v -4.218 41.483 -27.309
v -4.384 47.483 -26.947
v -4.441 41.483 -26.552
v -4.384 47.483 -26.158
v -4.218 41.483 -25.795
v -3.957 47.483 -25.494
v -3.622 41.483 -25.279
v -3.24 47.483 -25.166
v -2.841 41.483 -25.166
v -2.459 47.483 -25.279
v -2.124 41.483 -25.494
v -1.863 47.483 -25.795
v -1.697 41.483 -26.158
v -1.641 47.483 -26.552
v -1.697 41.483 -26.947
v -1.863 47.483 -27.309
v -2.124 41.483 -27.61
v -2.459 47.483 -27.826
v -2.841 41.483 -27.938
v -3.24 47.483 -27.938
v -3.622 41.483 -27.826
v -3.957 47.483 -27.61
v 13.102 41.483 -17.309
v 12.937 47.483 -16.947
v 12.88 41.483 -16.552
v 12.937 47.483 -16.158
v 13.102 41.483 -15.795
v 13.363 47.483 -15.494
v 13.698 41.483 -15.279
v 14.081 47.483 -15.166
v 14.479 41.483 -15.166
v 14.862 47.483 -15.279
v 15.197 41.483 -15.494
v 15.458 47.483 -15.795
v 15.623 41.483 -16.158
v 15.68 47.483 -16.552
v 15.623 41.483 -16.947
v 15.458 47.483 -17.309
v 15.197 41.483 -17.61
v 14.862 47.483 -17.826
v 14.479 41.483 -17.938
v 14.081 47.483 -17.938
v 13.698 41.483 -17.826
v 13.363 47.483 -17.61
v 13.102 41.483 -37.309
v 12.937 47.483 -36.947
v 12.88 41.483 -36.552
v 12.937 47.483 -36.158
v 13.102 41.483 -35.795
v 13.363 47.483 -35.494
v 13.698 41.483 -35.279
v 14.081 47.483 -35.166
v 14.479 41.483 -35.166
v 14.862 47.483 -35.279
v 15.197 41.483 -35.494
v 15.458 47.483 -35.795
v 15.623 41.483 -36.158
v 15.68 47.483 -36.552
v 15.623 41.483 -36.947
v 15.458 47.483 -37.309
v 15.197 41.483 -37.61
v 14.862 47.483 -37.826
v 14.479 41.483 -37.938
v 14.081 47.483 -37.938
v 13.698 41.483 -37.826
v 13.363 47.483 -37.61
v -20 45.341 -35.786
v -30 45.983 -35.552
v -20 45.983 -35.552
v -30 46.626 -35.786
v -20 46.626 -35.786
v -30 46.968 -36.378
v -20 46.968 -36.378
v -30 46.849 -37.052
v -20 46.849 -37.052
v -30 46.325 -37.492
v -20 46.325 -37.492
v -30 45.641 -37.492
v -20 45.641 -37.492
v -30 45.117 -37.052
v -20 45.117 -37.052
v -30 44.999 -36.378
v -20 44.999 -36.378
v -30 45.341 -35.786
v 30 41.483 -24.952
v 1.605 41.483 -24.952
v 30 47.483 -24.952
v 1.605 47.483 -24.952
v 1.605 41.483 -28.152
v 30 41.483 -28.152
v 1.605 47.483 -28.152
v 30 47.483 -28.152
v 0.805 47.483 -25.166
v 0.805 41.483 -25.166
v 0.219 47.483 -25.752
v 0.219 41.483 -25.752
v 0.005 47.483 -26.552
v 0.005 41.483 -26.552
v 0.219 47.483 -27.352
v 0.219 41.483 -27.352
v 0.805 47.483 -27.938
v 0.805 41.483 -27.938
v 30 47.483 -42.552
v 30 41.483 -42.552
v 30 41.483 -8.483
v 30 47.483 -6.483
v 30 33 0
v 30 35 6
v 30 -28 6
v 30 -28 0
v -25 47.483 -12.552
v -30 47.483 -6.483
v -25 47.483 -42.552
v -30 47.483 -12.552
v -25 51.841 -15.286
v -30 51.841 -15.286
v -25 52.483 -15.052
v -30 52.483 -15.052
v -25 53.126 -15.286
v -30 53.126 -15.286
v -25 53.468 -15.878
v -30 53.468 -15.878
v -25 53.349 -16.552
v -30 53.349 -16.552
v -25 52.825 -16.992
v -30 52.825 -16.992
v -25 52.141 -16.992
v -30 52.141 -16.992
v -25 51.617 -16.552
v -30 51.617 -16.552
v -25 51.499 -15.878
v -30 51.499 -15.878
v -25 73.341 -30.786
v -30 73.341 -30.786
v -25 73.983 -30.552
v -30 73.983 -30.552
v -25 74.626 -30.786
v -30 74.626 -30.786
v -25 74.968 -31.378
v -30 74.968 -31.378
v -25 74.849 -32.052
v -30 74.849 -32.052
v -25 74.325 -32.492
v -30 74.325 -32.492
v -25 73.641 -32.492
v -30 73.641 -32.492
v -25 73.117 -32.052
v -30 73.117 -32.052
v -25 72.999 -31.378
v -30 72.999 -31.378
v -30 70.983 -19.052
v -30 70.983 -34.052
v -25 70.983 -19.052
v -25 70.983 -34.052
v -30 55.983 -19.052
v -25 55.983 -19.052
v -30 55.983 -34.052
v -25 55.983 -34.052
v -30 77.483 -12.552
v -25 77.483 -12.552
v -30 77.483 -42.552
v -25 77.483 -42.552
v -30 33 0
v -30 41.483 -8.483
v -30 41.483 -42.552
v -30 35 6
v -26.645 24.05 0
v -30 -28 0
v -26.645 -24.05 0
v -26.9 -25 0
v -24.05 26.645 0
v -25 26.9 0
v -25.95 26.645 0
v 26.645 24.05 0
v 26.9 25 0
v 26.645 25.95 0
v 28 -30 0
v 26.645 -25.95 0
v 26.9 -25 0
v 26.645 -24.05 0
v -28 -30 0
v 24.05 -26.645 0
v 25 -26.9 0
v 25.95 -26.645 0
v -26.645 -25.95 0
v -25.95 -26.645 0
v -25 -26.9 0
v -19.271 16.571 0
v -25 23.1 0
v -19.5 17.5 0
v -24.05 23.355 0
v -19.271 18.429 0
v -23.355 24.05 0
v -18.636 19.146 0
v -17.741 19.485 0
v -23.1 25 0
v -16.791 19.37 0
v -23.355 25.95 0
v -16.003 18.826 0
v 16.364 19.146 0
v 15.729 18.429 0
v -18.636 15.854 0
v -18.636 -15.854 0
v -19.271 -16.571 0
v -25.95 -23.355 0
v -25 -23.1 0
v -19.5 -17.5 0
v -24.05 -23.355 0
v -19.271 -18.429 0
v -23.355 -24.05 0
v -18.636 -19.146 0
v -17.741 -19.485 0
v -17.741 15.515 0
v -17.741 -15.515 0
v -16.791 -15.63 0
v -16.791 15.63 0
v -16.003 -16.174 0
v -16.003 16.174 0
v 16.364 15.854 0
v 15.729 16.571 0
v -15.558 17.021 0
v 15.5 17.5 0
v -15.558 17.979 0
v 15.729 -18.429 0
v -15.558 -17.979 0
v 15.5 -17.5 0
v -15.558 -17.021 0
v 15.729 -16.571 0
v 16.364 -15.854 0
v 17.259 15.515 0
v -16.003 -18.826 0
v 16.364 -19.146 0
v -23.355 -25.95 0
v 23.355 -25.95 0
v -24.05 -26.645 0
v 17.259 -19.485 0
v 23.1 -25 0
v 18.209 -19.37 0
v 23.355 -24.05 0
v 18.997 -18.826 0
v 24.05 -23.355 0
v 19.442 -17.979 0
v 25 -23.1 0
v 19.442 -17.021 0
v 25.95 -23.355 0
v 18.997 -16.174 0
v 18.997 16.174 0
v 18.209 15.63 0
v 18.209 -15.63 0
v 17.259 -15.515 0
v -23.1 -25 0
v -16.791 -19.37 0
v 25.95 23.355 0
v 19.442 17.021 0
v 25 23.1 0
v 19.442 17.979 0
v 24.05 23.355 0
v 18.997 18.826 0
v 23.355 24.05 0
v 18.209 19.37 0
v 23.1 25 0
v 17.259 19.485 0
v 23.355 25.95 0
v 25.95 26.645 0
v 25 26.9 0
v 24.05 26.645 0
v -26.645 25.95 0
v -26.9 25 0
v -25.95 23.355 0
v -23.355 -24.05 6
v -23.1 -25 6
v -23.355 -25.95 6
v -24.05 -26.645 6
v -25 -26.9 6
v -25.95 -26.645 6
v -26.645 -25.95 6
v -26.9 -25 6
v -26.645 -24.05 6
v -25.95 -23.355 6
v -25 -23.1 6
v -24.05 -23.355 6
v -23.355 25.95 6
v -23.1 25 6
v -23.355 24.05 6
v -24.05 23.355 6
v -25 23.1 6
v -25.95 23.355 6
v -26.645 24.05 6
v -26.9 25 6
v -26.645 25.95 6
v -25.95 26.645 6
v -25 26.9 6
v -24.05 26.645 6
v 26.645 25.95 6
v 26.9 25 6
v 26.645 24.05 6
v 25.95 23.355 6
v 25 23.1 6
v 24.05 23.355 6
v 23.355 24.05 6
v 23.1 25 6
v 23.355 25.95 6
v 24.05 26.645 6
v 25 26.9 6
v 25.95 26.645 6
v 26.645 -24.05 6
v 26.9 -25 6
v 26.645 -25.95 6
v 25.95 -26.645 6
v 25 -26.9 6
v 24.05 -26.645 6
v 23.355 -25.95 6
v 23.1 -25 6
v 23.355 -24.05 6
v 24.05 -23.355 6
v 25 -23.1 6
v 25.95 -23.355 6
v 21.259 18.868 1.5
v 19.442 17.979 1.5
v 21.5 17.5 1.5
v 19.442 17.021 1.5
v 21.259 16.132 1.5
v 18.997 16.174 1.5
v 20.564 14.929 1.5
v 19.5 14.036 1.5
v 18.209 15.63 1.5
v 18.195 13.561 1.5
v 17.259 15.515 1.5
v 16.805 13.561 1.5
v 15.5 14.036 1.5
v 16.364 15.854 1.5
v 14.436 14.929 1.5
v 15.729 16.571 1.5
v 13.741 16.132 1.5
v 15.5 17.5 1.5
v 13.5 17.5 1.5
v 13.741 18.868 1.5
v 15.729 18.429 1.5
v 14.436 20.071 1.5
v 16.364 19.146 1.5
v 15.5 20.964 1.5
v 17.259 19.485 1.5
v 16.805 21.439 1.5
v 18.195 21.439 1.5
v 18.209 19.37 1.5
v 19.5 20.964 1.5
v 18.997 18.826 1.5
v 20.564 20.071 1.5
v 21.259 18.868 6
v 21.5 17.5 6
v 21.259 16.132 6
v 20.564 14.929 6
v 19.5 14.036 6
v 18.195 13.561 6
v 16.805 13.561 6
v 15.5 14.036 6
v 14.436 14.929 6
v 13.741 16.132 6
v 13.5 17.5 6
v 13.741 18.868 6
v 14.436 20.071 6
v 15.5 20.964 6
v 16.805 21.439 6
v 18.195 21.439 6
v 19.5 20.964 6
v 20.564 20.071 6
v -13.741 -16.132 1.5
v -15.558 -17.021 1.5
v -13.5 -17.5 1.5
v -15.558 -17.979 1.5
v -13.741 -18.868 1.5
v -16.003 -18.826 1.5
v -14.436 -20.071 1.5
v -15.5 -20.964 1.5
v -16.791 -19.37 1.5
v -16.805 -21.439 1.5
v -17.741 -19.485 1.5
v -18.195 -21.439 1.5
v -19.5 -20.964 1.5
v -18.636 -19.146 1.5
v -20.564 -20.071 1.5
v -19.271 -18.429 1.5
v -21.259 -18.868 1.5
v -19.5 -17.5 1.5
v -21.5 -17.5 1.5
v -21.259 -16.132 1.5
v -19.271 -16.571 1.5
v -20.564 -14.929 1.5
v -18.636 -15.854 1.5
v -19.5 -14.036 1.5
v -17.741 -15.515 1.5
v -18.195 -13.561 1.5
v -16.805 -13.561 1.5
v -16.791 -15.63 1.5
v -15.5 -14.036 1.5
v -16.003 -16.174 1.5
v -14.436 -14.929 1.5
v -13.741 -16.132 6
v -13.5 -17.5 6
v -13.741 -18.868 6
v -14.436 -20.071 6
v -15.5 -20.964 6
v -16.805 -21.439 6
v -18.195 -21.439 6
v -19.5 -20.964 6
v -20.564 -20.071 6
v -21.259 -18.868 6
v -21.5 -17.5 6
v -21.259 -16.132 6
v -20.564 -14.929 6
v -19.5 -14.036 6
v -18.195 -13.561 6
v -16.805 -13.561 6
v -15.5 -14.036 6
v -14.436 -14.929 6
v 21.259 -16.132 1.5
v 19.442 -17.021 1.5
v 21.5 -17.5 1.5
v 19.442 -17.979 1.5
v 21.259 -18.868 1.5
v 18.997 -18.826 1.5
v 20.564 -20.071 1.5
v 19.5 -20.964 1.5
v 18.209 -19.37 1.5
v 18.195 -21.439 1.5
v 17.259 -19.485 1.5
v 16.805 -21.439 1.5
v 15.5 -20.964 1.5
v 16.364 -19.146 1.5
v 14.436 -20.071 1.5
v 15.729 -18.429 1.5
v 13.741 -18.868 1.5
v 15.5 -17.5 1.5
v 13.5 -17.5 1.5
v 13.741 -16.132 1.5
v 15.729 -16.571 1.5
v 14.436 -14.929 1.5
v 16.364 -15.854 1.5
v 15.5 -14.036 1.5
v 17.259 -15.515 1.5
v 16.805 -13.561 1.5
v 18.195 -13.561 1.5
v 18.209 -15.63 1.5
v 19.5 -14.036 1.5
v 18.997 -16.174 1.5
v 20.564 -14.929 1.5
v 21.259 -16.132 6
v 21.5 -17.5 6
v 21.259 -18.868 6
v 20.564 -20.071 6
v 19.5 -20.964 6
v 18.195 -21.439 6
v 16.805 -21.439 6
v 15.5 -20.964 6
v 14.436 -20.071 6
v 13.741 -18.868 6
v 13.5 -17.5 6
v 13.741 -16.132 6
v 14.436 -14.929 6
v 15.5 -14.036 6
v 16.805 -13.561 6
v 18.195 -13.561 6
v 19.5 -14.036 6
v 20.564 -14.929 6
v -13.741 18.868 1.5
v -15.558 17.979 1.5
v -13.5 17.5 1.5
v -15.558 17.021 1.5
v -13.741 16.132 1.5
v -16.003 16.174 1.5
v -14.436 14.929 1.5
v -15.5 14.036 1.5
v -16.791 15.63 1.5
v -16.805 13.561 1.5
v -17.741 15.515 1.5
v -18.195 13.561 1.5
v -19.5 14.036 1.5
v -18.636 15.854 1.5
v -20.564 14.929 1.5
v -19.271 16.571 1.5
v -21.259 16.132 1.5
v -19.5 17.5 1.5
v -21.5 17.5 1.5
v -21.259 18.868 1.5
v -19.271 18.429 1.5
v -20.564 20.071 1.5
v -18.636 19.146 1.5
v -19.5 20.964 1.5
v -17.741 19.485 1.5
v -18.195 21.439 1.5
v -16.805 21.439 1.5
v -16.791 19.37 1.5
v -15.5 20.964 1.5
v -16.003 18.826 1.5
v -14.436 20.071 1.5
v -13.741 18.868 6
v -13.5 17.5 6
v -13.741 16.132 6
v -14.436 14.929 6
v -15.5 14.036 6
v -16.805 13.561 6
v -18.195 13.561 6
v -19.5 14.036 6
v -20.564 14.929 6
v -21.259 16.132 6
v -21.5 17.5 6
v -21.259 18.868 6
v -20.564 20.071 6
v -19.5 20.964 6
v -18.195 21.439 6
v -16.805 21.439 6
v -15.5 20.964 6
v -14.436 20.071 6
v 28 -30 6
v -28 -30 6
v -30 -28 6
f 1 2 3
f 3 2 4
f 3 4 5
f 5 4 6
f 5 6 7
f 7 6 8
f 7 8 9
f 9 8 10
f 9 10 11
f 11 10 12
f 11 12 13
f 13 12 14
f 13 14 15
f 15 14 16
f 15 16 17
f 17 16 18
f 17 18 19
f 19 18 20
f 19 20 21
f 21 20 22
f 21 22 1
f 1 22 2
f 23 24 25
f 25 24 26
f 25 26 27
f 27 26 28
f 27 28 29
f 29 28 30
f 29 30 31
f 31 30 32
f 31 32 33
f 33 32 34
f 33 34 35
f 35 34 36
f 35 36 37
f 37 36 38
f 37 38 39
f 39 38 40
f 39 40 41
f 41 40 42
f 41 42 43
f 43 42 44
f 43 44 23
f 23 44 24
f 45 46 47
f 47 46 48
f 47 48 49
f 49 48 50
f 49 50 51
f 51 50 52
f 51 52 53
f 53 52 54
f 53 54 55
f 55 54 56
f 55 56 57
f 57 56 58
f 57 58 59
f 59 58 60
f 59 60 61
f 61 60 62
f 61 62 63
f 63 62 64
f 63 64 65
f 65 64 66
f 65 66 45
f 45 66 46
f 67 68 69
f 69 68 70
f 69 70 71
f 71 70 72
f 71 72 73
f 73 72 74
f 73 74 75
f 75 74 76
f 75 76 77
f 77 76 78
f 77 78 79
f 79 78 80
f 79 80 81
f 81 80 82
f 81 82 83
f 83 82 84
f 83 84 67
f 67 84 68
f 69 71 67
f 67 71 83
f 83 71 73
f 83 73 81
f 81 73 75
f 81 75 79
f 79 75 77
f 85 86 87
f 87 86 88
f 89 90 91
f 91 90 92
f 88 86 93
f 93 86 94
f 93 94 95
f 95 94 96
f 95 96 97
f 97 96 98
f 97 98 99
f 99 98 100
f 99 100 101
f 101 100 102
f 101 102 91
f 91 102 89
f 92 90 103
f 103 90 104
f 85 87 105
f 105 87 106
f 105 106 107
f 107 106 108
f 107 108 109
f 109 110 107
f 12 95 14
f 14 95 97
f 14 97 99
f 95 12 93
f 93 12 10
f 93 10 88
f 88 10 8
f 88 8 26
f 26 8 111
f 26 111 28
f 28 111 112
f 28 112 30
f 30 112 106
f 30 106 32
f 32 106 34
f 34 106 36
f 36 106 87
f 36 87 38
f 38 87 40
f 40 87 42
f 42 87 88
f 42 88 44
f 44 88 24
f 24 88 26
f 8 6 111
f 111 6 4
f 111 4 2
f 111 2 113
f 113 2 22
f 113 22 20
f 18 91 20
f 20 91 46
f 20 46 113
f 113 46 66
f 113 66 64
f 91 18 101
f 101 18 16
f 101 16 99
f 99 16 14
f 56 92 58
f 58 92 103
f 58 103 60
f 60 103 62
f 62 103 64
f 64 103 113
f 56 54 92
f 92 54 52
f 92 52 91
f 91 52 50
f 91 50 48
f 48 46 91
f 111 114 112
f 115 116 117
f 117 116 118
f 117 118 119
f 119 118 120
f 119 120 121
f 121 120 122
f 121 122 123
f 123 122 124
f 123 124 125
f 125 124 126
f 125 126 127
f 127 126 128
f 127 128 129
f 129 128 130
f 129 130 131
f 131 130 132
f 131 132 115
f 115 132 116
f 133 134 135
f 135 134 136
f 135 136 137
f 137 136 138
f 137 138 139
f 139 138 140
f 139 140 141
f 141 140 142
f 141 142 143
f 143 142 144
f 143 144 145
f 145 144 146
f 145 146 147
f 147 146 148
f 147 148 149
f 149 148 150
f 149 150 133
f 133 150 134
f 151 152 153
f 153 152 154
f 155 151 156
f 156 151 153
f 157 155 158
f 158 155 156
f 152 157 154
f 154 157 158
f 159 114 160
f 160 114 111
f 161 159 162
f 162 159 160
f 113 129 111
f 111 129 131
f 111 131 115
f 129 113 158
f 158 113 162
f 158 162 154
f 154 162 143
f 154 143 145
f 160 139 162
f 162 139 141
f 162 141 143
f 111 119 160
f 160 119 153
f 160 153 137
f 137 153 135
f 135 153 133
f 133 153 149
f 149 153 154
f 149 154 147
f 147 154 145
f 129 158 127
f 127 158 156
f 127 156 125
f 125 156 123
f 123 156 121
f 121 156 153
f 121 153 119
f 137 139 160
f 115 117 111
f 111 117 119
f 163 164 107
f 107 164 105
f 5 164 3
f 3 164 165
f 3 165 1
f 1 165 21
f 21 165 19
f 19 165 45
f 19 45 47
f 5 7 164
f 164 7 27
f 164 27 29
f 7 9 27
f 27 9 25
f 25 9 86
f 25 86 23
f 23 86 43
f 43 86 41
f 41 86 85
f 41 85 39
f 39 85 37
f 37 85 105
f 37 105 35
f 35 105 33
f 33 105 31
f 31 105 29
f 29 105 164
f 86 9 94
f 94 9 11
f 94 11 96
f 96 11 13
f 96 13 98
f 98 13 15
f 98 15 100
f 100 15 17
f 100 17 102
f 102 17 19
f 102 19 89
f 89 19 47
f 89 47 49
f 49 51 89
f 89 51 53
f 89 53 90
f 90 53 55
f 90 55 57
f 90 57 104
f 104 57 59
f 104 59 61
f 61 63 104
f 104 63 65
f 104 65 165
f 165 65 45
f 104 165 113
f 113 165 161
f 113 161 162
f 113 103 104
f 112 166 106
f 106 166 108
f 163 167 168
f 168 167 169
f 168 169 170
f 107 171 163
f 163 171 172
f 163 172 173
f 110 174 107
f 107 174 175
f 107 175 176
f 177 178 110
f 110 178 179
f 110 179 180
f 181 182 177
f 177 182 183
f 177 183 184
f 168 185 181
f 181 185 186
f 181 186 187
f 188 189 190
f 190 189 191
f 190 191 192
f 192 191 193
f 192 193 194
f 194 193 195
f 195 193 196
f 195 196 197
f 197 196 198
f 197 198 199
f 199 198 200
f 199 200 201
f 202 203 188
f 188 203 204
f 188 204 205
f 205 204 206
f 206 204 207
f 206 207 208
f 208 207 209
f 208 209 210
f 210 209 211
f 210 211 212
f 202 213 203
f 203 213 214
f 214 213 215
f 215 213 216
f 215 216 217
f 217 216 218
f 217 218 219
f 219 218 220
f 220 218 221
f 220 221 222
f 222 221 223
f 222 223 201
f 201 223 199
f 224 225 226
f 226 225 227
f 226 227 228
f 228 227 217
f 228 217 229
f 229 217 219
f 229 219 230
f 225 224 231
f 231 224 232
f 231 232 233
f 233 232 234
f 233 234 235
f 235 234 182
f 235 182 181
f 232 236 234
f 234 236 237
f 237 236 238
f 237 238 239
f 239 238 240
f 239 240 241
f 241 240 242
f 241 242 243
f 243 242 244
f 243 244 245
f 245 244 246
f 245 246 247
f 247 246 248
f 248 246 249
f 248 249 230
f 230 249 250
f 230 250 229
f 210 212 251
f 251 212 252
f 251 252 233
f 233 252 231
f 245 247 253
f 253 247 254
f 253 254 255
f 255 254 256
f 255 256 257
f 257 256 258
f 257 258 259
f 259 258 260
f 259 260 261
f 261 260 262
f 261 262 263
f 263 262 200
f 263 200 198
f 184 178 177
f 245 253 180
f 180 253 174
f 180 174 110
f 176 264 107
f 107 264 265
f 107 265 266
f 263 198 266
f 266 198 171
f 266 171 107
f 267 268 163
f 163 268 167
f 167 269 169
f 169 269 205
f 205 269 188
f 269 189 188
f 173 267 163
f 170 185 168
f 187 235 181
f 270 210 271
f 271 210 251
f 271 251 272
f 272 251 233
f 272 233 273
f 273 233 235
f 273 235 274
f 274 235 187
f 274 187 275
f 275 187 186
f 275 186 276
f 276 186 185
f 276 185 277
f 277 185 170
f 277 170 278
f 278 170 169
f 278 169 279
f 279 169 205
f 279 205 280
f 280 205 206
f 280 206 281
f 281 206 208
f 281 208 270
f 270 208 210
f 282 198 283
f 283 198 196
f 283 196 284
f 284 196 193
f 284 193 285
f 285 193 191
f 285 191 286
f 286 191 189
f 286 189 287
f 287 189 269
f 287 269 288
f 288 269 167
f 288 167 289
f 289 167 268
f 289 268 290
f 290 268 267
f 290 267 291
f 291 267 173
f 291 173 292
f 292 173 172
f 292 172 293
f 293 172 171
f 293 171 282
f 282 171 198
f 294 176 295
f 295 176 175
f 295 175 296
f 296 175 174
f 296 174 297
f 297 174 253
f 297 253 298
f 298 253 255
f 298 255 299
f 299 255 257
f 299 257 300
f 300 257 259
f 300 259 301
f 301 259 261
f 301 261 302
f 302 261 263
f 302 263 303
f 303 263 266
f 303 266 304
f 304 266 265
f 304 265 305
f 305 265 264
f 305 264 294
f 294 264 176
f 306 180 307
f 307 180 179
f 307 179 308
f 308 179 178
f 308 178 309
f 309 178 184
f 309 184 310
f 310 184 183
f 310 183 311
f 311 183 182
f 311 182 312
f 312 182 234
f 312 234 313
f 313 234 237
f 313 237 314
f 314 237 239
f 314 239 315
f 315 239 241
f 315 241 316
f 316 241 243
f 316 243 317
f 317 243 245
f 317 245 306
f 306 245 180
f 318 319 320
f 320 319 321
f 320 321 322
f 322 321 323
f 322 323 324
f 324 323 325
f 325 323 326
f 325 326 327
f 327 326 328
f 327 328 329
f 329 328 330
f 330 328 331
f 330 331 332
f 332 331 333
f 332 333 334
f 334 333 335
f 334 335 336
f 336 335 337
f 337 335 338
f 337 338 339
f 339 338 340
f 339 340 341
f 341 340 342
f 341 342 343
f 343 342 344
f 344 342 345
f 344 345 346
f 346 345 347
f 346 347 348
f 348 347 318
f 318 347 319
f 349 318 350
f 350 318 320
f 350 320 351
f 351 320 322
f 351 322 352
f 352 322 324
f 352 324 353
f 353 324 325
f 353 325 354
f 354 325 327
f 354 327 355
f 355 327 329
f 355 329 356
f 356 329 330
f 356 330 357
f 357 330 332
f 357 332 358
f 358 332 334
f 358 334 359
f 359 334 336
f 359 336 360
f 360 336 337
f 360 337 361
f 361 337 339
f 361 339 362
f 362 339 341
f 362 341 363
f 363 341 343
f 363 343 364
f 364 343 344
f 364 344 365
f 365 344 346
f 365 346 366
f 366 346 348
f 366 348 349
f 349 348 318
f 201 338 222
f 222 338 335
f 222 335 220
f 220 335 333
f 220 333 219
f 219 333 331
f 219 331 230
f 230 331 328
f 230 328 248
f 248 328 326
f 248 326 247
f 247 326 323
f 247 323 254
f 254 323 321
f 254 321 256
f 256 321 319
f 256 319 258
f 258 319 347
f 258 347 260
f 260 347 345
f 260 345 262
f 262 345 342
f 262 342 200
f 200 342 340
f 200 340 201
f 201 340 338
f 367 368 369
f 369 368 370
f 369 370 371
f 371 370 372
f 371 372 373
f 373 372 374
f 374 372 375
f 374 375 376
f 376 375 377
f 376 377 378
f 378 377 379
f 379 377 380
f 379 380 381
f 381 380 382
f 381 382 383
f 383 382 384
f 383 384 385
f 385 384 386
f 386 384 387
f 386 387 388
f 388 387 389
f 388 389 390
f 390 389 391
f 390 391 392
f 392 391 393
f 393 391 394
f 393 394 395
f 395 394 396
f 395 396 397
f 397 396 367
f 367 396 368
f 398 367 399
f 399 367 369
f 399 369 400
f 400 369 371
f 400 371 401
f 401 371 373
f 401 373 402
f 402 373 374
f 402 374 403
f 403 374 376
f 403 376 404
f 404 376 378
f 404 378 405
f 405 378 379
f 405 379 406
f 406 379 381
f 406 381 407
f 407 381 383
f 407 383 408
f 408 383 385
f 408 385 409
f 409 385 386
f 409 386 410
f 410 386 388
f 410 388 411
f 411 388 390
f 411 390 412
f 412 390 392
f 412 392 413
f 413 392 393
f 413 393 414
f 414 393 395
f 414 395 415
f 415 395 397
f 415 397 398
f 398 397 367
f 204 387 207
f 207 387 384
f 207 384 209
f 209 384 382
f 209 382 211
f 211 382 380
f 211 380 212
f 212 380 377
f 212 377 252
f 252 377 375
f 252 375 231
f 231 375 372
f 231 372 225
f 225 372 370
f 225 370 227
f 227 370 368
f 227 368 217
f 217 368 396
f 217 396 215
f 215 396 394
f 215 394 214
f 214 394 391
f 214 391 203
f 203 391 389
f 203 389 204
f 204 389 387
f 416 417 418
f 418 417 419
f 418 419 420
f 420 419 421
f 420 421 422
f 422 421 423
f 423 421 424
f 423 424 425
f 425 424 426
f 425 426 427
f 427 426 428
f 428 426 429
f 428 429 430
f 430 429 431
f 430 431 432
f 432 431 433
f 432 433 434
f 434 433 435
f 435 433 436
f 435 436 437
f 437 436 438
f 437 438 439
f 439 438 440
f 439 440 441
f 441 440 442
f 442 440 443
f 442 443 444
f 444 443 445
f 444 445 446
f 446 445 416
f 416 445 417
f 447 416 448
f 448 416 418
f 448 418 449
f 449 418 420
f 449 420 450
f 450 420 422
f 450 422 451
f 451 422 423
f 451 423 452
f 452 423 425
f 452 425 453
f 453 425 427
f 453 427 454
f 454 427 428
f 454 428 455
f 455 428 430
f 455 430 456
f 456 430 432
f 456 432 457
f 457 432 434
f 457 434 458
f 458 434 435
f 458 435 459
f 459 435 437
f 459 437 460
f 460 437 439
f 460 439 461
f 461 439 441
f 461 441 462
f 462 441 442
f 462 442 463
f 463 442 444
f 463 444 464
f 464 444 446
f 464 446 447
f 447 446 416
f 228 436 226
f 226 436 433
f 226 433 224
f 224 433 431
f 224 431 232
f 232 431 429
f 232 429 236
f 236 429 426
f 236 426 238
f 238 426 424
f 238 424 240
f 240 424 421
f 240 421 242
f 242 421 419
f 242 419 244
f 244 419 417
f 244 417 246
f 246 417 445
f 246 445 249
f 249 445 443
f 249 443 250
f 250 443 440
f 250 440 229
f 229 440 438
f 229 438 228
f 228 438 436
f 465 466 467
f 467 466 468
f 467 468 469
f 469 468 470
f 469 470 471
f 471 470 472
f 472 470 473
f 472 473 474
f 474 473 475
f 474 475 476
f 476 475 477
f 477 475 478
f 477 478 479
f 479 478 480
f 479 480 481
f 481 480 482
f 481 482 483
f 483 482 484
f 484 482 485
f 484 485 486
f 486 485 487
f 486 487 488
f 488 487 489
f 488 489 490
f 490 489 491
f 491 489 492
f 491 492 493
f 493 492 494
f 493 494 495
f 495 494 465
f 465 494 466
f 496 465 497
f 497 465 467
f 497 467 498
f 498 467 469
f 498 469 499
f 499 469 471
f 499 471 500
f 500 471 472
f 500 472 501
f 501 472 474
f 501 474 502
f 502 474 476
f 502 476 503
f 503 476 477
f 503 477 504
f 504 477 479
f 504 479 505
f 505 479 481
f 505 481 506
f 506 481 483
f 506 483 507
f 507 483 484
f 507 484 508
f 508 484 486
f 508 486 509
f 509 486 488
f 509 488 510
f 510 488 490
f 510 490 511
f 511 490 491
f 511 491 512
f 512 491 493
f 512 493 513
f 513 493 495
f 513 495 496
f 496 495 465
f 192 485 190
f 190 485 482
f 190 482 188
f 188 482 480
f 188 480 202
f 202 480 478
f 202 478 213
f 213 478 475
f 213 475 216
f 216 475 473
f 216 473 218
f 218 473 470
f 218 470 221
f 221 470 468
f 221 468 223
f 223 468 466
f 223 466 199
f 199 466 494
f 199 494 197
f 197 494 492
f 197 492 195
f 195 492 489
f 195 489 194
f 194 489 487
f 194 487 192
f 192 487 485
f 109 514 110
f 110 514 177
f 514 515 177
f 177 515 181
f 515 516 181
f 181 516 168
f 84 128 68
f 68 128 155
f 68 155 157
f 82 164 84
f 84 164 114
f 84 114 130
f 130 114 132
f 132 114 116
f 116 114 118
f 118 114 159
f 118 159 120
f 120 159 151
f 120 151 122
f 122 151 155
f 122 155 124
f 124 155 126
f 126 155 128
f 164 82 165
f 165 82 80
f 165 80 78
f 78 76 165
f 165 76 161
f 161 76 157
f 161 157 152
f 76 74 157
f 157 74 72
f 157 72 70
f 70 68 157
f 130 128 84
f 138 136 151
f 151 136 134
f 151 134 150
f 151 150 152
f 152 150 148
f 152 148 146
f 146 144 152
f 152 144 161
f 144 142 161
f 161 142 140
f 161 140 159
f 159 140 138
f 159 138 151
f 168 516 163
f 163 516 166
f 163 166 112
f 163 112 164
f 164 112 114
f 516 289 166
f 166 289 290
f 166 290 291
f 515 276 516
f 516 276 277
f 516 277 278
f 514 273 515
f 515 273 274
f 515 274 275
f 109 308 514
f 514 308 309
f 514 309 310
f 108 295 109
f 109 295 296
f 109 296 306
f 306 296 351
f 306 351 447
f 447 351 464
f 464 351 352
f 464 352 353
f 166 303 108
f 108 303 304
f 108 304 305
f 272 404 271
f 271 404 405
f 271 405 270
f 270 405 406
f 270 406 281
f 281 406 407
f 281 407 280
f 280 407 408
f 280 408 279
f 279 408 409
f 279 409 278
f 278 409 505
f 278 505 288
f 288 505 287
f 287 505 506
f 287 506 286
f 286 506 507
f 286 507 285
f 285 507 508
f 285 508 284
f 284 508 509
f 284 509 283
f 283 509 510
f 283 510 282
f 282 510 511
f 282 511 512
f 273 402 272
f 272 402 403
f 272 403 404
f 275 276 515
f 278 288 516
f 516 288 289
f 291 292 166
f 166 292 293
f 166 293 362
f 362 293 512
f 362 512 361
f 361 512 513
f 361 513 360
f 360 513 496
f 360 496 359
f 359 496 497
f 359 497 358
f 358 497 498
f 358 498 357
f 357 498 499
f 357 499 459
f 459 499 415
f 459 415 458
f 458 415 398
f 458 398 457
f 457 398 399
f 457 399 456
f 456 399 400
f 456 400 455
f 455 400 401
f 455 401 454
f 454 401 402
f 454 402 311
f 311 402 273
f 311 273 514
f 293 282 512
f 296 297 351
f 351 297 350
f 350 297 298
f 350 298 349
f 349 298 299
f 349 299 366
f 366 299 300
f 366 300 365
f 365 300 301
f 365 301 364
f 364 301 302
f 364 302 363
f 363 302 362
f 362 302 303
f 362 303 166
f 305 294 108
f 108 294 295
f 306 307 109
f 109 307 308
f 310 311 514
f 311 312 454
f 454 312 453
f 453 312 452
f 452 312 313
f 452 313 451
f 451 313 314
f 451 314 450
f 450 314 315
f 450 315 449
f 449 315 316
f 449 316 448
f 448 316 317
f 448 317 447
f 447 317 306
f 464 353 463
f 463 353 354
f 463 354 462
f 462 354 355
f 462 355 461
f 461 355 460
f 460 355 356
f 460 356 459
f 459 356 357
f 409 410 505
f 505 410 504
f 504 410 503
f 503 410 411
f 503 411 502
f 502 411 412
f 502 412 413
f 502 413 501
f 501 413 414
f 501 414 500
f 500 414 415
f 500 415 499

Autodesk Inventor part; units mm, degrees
ref_plane "YZ Plane" through (0, 0, 0) normal (1, 0, 0) x (0, 1, 0)
ref_plane "XZ Plane" through (0, 0, 0) normal (0, 1, 0) x (-1, 0, 0)
ref_plane "Work Plane1" through (0, 0, 0) normal (0, 0, 1) x (1, 0, 0)
ref_plane "Work Plane2" through (-30, -30, 6) normal (0, 0, -1) x (0, 1, 0)
sketch "Sketch1" plane through (0, 0, 0) normal (0, 0, 1) x (1, 0, 0)
  circle A0 centre (-25, 0) radius 1.95 projected
  circle A1 centre (0, -25) radius 1.95 projected
  circle A2 centre (25, -25) radius 1.95 projected
  circle A3 centre (-25, 25) radius 1.95 projected
  circle A4 centre (25, 25) radius 1.95 projected
  circle A5 centre (-25, -25) radius 1.95 projected
  circle A6 centre (0, 25) radius 1.95 projected
  circle A7 centre (25, 0) radius 1.95 projected
  line L0 (-30, -28) -> (-28, -30) projected
  line L1 (-28, -30) -> (28, -30) projected
  line L2 (28, -30) -> (30, -28) projected
  line L3 (30, -28) -> (30, 28) projected
  line L4 (30, 28) -> (28, 30) projected
  line L5 (28, 30) -> (-28, 30) projected
  line L6 (-28, 30) -> (-30, 28) projected
  line L7 (-30, 28) -> (-30, -28) projected
  line L8 (43, -44) -> (44, -44) projected
  line L9 (76, -44) -> (145, -44) construction
  point P0 (0, 0)
  point P1 (30, 25)
extrude "Extrusion1" add sketch "Sketch1" along normal up to surface (6 mm away) contours A0 | A1 | A2 | A3 | A4 | A5 | A6 | A7 | L7 L6 L5 L4 L3 L2 L1 L0
sketch "Sketch2" plane through (-28, 30, 6) normal (0, 0, 1) x (1, 0, 0)
  circle A0 centre (10.5, -12.5) radius 1.95 projected
  circle A1 centre (10.5, -47.5) radius 1.95 projected
  circle A2 centre (45.5, -47.5) radius 1.95 projected
  circle A3 centre (45.5, -12.5) radius 1.95 projected
  point P0 (28, -30)
hole "Hole1" at (-17.5, -17.5, 6) at (17.5, -17.5, 6) at (17.5, 17.5, 6) at (-17.5, 17.5, 6) direction (0, 0, -1) diameter 4 end through all counterbore diameter 8 counterbore depth 4.5
sketch "Sketch10" plane through (0, 0, 0) normal (0, 0, -1) x (-1, 0, 0)
  circle A0 centre (-25, 25) radius 2.325 projected
  circle A1 centre (-25, -25) radius 2.325 projected
  circle A2 centre (25, 25) radius 2.325 projected
  circle A3 centre (25, -25) radius 2.325 projected
  circle A4 centre (25, -25) radius 2.325 projected
  point P0 (0, 0)
hole "Hole3" at (-25, 25, 0) at (25, 25, 0) at (-25, -25, 0) at (25, -25, 0) direction (0, 0, 1) diameter 3.8 depth 20 tip angle 118
sketch "Skizze13" plane through (30, -28, 0) normal (1, 0, 0) x (0, 0, -1)
  line L0 (0, 56) -> (-6, 56) projected
  line L1 (-6, 56) -> (-6, 58) projected
  line L2 (0, 56) -> (0, 58) projected
  line L3 (0, 58) -> (-6, 58) projected
  line L4 (-6, 58) -> (-6, 63)
  line L5 (-6, 63) -> (6.4834, 75.4834)
  line L6 (10.5521, 75.4834) -> (12.5521, 75.4834)
  line L7 (0, 58) -> (0, 61)
  line L8 (0, 61) -> (8.4834, 69.4834)
  line L9 (8.4834, 69.4834) -> (42.5521, 69.4834)
  line L10 (42.5521, 69.4834) -> (42.5521, 75.4834)
  line L11 (42.5521, 75.4834) -> (6.4834, 75.4834)
  line L12 (42.5521, 75.4834) -> (42.5521, 107.4834)
  point P0 (0, 28)
  dimension "d43" = 5
  dimension "d44" = 135
  dimension "d45" = 135
  dimension "d46" = 0
  dimension "d49" = 6
extrude "Extrusion10" add sketch "Skizze13" against normal up to surface (60 mm away)
ref_plane "Arbeitsebene4" through (-30, 57.7593, -26.2973) normal (1, 0, 0) x (0, -0.9086751, 0.417504)
sketch "Skizze14" plane through (-30, -28, 0) normal (-1, 0, 0) x (0, 0, 1)
  circle A0 centre (-16.0521, 80.4834) radius 1
  circle A1 centre (-31.5521, 101.9834) radius 1
  circle A2 centre (-36.5521, 73.9834) radius 1
  line L0 (-6.4834, 75.4834) -> (-42.5521, 75.4834) projected
  line L1 (-42.5521, 69.4834) -> (-42.5521, 75.4834) projected
  line L2 (-42.5521, 75.4834) -> (-12.5521, 75.4834)
  line L3 (-12.5521, 75.4834) -> (-12.5521, 105.4834)
  line L4 (-12.5521, 105.4834) -> (-42.5521, 105.4834)
  line L5 (-42.5521, 105.4834) -> (-42.5521, 75.4834)
  circle A3 centre (-26.5521, 91.4834) radius 2.6486
  line L6 (-34.0521, 83.9834) -> (-19.0521, 83.9834)
  line L7 (-19.0521, 83.9834) -> (-19.0521, 98.9834)
  line L8 (-19.0521, 98.9834) -> (-34.0521, 98.9834)
  line L9 (-34.0521, 98.9834) -> (-34.0521, 83.9834)
  line L10 (-34.0521, 83.9834) -> (-19.0521, 98.9834) construction
  line L11 (-19.0521, 83.9834) -> (-34.0521, 98.9834) construction
  point P0 (0, 28)
  point P1 (-12.5521, 75.4834)
  dimension "d50" = 30
  dimension "d51" = 30
  dimension "d52" = 15
  dimension "d53" = 15
extrude "Extrusion11" add sketch "Skizze14" against normal blind 5 contours L0 L5 L4 L3
sketch "Skizze15" plane through (30, 47.4834, -6.4834) normal (0, 1, 0) x (1, 0, 0)
  circle A0 centre (-15, 20.0687) radius 1.4
  line L0 (2.6067, 20.0687) -> (-28.3951, 20.0687) construction
  line L1 (2.6067, 21.6687) -> (-28.3951, 21.6687)
  line L2 (-28.3951, 18.4687) -> (2.6067, 18.4687)
  arc A1 (2.6067, 18.4687) -> (2.6067, 21.6687) centre (2.6067, 20.0687) ccw
  arc A2 (-28.3951, 21.6687) -> (-28.3951, 18.4687) centre (-28.3951, 20.0687) ccw
  point P0 (-30, -6.4834)
  point P1 (-12.8942, 20.0687)
  dimension "d56" = 3.2
extrude "Extrusion12" cut sketch "Skizze15" against normal through all contours A0 | A1 L2 A2 L1
sketch "Skizze16" plane through (-30, -28, 0) normal (-1, 0, 0) x (0, 0, 1)
  circle A0 centre (-16.0521, 80.4834) radius 1
  circle A1 centre (-31.5521, 101.9834) radius 1
  circle A2 centre (-36.5521, 73.9834) radius 1
  point P0 (0, 28)
extrude "Extrusion13" cut sketch "Skizze16" against normal blind 10
sketch "Skizze17" plane through (-30, 47.4834, -6.4834) normal (0, 1, 0) x (1, 0, 0)
  arc A0 (31.6049, 21.6687) -> (31.6049, 18.4687) centre (31.6049, 20.0687) ccw projected
  line L0 (44.28, 10.0687) -> (26.9595, 20.0687)
  line L1 (26.9595, 20.0687) -> (44.28, 30.0687)
  line L2 (44.28, 30.0687) -> (44.28, 10.0687)
  line L3 (0, 6.0687) -> (0, 36.0687) projected
  point P0 (30, -6.4834)
  point P1 (38.5065, 20.0687)
  dimension "d61" = 20
hole "Bohrung4" at (14.28, 47.4834, -16.5521) at (-3.0405, 47.4834, -26.5521) at (14.28, 47.4834, -36.5521) direction (0, -1, 0) diameter 2.8 depth 20 tip angle 118
properties part number "cellSTORM_v5_laserstage"
